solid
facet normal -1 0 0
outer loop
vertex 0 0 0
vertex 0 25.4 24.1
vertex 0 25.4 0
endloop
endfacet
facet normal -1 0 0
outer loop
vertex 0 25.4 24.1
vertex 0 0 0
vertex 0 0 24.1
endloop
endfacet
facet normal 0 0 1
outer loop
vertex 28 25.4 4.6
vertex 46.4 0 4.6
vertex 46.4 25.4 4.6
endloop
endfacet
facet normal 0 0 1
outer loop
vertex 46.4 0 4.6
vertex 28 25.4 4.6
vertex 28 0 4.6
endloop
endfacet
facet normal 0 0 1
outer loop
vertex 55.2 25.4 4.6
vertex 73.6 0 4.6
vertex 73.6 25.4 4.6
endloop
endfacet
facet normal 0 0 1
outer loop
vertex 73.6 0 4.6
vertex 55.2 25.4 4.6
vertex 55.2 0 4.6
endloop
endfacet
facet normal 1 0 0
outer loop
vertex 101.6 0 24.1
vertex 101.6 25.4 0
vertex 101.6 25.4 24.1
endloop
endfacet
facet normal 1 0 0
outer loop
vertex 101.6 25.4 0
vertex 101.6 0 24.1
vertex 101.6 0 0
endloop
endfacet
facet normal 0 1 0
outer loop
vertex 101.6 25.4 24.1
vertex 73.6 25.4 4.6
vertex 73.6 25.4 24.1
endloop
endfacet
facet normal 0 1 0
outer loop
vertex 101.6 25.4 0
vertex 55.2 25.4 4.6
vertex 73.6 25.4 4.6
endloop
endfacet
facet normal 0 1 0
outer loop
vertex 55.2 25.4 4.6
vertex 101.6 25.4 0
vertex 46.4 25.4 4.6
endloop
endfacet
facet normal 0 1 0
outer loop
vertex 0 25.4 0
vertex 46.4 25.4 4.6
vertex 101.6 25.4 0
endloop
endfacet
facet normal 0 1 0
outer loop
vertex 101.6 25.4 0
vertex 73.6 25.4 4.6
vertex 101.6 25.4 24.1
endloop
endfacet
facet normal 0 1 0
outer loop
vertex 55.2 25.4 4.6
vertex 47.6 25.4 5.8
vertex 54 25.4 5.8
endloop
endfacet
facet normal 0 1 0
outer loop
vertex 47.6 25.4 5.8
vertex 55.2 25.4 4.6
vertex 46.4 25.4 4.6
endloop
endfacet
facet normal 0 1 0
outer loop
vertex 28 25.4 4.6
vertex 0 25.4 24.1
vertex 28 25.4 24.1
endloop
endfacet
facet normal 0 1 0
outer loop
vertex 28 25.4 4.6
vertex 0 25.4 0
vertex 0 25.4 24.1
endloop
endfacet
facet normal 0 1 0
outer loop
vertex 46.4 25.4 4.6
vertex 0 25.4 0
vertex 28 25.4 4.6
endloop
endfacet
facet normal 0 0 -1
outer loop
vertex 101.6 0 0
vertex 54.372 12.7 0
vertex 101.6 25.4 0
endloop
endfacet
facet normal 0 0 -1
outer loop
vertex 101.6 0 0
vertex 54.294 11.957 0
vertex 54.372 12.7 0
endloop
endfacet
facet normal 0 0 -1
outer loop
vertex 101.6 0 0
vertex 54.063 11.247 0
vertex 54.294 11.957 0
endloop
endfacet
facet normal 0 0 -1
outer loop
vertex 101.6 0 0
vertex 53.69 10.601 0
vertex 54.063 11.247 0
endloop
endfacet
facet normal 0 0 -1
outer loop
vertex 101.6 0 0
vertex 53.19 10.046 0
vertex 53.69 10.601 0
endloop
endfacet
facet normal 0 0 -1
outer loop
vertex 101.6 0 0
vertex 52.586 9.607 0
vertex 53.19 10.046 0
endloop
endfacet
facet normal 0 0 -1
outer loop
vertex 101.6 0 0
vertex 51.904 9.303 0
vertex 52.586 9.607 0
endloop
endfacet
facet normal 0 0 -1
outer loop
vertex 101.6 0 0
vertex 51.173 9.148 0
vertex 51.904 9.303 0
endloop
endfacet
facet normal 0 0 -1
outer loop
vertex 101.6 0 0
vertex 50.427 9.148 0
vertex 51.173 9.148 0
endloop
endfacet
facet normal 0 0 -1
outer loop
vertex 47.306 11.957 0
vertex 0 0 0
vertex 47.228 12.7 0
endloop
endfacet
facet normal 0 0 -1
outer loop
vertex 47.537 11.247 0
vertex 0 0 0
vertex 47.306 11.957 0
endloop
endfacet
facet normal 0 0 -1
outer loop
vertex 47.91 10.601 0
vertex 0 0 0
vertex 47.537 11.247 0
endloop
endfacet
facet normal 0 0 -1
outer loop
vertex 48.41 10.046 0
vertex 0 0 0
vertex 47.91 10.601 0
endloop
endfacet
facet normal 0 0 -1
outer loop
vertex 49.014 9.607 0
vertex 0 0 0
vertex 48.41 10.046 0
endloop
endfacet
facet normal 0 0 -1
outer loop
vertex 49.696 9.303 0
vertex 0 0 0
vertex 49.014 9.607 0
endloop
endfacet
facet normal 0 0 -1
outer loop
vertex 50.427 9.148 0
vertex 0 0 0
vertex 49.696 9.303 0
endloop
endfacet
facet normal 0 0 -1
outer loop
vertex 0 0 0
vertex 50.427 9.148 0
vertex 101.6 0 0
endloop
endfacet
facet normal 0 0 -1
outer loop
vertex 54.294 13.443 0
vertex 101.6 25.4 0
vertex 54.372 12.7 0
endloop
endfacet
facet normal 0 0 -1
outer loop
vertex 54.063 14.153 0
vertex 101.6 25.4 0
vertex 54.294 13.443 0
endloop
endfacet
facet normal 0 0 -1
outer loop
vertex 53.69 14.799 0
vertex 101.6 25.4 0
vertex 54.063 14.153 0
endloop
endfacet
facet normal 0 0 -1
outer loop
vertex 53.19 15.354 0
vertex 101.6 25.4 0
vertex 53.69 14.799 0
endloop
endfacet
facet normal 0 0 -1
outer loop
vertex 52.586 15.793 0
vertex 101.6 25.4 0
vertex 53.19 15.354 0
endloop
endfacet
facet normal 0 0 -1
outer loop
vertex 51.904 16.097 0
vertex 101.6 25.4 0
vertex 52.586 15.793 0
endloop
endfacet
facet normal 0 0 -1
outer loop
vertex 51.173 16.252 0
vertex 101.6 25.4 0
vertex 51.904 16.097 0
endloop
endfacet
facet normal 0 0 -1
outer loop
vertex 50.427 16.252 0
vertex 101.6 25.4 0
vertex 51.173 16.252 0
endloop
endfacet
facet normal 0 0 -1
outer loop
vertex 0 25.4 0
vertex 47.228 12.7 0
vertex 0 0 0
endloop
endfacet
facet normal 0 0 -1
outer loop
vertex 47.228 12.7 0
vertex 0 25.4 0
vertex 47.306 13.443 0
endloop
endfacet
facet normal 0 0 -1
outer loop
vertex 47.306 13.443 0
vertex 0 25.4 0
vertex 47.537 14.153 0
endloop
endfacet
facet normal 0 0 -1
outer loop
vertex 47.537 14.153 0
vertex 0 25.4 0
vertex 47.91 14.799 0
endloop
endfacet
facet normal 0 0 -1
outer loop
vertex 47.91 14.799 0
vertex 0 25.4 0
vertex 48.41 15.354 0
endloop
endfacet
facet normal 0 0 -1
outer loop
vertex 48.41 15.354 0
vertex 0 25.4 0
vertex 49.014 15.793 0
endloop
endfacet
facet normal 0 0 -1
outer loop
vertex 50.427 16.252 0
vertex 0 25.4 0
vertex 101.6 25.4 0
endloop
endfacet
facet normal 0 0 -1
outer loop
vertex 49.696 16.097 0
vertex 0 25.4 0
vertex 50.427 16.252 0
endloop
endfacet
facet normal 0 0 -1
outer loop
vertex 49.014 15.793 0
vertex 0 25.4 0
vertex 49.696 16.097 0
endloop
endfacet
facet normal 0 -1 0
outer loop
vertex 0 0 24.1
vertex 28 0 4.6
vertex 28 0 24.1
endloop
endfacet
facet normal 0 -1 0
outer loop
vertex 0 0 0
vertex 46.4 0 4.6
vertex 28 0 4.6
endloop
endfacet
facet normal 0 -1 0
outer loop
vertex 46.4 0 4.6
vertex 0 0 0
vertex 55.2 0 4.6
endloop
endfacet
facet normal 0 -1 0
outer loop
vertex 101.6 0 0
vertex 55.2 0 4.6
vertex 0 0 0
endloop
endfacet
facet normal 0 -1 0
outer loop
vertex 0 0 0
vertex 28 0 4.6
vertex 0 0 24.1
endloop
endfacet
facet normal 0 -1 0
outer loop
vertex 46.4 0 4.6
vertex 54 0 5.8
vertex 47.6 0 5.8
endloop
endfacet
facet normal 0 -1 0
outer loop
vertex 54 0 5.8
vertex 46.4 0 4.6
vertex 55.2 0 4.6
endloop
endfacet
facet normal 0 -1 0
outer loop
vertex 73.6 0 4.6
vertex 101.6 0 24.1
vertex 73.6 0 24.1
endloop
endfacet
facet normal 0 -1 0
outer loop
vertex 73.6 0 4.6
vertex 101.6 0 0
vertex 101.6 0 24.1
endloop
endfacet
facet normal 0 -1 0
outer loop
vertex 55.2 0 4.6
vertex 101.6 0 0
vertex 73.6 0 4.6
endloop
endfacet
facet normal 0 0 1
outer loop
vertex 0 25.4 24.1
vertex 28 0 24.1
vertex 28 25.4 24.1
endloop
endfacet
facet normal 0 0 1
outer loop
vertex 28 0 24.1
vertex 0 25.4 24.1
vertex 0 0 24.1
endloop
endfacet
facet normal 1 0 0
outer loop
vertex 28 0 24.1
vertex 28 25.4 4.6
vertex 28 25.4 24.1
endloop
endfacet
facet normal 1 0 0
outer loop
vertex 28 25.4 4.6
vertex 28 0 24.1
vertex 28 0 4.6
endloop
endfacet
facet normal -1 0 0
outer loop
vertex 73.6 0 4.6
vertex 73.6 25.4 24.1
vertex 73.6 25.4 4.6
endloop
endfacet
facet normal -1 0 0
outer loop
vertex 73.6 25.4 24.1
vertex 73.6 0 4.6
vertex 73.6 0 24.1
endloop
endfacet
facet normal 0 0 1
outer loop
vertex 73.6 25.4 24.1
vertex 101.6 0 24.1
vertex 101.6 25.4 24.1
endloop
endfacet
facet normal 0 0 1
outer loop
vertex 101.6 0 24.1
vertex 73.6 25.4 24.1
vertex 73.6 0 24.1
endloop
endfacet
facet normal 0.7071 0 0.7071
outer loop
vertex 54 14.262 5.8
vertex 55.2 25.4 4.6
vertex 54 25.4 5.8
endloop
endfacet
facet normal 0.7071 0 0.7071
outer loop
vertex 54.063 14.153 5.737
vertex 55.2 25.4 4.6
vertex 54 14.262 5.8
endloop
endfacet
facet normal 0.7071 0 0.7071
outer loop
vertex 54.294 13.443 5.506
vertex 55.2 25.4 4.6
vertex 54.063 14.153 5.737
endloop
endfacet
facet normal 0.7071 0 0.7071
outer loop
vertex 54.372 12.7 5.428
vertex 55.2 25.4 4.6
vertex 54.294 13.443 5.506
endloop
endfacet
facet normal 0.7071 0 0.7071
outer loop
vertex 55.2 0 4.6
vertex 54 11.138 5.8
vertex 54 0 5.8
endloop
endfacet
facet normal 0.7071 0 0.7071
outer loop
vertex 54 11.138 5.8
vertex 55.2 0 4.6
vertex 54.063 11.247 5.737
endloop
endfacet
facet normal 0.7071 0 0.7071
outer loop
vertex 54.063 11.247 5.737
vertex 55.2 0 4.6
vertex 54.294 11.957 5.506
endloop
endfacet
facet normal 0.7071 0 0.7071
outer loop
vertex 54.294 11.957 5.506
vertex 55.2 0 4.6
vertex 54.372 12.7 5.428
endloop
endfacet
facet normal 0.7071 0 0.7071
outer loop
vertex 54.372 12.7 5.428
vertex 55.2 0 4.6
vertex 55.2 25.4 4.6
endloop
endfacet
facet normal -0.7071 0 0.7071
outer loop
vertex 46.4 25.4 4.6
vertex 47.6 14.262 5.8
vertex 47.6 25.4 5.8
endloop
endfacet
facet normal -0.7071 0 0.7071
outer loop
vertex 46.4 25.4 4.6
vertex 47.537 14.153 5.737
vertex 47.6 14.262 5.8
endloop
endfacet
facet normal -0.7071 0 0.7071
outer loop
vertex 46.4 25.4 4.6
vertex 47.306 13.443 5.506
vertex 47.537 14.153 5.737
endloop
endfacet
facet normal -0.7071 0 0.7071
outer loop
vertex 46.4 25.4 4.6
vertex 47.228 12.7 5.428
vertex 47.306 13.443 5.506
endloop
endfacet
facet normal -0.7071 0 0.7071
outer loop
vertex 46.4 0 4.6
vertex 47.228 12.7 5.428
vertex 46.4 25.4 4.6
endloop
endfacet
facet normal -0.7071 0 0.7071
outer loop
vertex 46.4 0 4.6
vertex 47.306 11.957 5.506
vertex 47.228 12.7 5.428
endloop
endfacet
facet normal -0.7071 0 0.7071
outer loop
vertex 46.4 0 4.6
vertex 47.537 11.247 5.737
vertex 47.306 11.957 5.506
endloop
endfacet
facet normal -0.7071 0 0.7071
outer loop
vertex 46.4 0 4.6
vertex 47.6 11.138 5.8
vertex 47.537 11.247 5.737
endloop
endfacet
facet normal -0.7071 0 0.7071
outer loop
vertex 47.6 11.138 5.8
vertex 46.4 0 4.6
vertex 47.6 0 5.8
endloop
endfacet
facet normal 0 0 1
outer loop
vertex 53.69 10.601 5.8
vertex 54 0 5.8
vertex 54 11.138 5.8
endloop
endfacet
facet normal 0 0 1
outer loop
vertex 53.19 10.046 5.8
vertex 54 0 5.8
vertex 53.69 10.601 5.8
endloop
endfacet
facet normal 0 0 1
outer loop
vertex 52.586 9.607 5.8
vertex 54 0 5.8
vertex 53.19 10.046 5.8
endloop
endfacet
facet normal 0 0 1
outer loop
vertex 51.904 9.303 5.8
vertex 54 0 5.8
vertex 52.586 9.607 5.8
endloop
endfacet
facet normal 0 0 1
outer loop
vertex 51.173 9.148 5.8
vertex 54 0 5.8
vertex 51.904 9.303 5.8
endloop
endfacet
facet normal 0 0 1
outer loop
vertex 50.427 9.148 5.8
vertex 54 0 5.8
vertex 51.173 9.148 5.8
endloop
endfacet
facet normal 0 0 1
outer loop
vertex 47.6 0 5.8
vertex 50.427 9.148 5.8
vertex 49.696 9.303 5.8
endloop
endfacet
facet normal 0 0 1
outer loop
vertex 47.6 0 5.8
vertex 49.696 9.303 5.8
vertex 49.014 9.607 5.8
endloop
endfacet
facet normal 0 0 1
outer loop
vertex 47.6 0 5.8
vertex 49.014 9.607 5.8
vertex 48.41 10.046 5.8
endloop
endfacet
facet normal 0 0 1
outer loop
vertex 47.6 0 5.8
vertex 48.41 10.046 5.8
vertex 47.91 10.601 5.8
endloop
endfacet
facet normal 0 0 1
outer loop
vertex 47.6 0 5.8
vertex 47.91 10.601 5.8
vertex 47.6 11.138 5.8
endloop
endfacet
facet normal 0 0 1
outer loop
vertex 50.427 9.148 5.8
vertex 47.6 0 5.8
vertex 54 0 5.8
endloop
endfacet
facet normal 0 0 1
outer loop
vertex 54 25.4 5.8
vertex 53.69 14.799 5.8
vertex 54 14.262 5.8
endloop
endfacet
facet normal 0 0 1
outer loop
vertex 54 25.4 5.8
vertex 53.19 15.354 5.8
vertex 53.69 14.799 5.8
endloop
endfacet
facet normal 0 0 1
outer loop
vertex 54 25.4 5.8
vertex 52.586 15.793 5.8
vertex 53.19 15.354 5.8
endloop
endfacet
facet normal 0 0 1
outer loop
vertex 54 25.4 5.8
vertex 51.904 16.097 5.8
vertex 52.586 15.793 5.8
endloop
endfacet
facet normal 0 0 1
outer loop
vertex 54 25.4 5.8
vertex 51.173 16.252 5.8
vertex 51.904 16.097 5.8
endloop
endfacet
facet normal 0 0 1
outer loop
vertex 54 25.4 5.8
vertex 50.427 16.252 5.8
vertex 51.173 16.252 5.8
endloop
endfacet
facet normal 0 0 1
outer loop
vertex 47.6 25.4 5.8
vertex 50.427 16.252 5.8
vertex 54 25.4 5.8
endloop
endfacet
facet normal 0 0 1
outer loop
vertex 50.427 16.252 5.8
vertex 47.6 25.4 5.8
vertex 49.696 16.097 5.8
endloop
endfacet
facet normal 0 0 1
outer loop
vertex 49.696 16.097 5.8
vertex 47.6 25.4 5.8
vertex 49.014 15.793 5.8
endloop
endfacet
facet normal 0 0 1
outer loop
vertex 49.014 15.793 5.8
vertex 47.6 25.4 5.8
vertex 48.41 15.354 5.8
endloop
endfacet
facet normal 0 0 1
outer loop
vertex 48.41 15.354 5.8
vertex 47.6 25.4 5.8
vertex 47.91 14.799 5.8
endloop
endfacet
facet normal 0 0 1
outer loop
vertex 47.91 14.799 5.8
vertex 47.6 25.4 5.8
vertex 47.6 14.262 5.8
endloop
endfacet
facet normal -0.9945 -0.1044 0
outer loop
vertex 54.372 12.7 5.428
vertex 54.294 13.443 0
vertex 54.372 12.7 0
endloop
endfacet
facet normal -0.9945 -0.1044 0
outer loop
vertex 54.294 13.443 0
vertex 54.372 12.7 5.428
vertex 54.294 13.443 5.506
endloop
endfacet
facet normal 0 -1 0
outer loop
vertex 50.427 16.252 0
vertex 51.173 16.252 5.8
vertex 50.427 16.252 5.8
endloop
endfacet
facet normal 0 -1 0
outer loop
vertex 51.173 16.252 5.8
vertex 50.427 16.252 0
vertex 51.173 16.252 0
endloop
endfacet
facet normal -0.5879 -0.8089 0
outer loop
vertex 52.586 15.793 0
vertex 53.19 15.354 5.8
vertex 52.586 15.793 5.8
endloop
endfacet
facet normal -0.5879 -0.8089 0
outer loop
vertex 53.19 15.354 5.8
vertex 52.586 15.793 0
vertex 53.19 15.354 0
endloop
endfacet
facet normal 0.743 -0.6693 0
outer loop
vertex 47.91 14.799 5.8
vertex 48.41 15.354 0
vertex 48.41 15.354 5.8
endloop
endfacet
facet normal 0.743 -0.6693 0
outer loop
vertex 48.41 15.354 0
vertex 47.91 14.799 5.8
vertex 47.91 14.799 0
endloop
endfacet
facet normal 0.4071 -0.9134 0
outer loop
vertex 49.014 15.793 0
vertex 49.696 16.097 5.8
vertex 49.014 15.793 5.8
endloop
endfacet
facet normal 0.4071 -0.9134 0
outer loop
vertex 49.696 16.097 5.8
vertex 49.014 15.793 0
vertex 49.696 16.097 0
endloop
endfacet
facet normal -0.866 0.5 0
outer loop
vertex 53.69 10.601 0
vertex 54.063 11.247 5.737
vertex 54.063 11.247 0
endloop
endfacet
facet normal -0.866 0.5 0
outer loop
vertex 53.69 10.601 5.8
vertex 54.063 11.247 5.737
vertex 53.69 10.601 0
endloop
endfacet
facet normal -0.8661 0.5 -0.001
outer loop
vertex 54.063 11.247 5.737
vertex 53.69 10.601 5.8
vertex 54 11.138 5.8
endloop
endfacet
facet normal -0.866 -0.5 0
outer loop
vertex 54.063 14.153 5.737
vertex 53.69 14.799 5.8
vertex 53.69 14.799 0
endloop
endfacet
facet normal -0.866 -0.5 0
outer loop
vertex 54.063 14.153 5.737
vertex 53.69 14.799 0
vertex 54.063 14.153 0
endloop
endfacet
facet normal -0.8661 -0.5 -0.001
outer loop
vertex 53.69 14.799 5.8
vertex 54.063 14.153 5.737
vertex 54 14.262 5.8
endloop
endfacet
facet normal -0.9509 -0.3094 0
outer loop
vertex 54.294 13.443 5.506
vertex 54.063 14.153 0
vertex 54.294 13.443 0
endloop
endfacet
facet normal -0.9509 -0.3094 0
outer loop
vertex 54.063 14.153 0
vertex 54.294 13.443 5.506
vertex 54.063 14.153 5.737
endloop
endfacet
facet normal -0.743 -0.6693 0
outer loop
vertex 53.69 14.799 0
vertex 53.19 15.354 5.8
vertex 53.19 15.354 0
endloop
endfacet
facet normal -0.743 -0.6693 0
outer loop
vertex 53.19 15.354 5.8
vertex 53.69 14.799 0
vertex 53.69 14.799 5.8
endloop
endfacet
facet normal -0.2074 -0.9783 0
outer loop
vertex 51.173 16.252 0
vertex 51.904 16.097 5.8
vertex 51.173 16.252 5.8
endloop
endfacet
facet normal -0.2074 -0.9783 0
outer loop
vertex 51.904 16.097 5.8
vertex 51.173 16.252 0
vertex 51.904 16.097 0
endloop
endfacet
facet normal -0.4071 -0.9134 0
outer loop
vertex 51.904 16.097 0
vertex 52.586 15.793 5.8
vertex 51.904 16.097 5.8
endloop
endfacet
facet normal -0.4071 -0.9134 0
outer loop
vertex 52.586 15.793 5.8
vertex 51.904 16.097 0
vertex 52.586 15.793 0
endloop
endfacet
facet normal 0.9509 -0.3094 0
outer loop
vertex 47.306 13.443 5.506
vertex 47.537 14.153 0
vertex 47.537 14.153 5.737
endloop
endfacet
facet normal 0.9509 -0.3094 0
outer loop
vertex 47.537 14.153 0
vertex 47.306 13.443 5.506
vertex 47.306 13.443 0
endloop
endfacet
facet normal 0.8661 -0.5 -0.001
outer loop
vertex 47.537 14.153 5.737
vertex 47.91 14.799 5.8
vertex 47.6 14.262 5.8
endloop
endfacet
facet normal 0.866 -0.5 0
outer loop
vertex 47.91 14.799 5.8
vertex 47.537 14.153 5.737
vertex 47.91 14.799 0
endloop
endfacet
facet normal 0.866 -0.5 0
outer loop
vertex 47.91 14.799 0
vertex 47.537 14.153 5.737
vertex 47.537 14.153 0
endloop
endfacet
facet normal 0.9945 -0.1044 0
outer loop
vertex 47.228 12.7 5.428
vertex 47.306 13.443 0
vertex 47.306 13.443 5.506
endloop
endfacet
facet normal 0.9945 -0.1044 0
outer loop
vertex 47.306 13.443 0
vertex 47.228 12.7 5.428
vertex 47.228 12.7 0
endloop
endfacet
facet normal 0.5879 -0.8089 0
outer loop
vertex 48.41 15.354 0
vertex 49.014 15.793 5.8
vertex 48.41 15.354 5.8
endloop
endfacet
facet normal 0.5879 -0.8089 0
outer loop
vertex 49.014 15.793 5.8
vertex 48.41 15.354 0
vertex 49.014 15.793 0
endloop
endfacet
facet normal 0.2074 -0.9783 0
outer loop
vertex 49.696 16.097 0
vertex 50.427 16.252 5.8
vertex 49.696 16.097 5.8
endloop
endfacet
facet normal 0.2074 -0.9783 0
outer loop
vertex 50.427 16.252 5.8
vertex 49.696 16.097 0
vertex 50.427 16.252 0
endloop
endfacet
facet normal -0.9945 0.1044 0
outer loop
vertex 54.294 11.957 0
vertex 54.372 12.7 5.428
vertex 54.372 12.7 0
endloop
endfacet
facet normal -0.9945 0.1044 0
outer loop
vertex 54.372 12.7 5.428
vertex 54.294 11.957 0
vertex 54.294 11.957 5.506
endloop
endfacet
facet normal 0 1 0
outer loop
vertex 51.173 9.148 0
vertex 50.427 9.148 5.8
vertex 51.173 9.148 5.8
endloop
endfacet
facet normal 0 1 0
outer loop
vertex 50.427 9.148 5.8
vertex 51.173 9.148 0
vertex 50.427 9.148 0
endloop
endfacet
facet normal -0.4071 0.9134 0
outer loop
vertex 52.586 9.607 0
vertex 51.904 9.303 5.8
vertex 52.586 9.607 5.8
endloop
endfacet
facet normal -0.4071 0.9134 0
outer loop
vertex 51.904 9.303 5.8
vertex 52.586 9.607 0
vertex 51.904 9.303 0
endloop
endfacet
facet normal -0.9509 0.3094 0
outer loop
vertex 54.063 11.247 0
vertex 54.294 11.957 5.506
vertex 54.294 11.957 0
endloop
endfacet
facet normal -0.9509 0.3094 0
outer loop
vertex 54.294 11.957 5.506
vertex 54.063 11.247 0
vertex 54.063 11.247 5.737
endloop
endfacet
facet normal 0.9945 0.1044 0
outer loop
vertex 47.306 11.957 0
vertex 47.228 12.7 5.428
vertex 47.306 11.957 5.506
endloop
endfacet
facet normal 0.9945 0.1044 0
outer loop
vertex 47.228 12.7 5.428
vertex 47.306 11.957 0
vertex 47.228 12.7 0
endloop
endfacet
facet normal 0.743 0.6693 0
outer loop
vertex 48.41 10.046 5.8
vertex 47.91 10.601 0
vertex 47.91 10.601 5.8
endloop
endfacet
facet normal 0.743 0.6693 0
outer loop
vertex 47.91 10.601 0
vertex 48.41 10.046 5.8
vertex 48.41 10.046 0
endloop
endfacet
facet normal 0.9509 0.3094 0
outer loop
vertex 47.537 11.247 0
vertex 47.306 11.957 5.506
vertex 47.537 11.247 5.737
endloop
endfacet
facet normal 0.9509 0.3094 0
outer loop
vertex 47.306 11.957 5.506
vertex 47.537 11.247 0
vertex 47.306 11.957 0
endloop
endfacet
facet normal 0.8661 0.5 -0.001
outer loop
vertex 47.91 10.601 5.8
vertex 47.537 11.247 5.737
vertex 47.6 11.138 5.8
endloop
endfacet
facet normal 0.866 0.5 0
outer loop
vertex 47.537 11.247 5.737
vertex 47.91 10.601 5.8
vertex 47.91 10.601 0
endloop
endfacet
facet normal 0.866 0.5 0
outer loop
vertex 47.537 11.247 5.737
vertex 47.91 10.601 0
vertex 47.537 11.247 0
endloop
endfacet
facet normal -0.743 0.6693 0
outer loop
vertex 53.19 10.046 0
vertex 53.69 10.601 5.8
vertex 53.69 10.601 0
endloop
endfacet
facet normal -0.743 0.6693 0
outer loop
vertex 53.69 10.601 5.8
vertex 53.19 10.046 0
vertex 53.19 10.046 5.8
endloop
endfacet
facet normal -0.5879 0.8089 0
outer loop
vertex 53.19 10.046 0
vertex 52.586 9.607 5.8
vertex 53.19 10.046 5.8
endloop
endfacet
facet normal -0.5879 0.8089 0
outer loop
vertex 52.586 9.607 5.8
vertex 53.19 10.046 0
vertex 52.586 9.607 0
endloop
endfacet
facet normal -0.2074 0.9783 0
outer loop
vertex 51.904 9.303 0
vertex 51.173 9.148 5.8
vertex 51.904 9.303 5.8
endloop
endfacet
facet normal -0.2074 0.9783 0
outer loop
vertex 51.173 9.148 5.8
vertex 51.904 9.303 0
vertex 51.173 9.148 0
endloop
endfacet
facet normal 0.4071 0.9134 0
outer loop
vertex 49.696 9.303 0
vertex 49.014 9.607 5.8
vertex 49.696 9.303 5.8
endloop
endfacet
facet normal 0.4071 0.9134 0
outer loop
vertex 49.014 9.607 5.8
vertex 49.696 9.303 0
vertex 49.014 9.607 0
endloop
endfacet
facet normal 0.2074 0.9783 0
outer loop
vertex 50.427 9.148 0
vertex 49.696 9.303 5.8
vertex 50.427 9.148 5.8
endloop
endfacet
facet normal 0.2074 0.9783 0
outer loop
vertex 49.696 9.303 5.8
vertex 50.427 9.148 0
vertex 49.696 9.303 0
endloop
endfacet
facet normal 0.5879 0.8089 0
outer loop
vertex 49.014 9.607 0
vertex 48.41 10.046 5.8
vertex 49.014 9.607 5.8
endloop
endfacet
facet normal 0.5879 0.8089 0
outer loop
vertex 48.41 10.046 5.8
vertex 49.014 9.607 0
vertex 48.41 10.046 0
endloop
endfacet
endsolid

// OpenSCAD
// End stop for Woodpeckers Story Stick

i2mm = 25.4; // inch to mm conversion
block_x = 28;
block_y = 1 * i2mm;
block_z = 19.5;

gap_x = 44.6 + 1.0; // 1.0 correction

wedge_x = 8 + 0.8;  // 0.8 correction
wedge_z = 1.2;
wedge_y = block_y;

plate_x = 2 * block_x + gap_x;
plate_y = block_y;
plate_z = 4.6;

center_x = plate_x/2;
center_y = plate_y/2;

// Hole. Add 1/32" clearance (actual hole has 1/64 clearance)
hole_dia = (1/4 + 1/32) * i2mm;
$fs = 0.1;

// The rectangular prism block on each end
module stop_block() {
    cube([block_x, block_y, block_z]);
}

// The flat plate on top
module top_plate() {
    cube([plate_x, plate_y, plate_z]);
}


module wedge_trapezoid_2D() {
    top_x = wedge_x - 2.0 * wedge_z; // 45 degree angle
    dx = wedge_z;
    polygon([[0.0, 0.0],
            [dx, wedge_z], [dx + top_x, wedge_z],
            [wedge_x, 0.0]]);
}

// The trapezoid tab in the center, below the top plate
module wedge() {
    translate([0, wedge_y, 0])
        rotate([90, 0, 0])
            linear_extrude(height = wedge_y)
                wedge_trapezoid_2D();
}

module stop() {
    top_plate();
    translate([0, 0, plate_z]) stop_block();
    translate([block_x + gap_x, 0, plate_z]) stop_block();
    translate([center_x - wedge_x/2.0, 0, plate_z])
        wedge();
}

module hole() {
    cylinder(h = plate_z + wedge_z, d = hole_dia);
}
module stop_with_hole() {
    difference() {
        stop();
        translate([center_x, center_y, 0])
            hole();
    }
}


stop_with_hole();
